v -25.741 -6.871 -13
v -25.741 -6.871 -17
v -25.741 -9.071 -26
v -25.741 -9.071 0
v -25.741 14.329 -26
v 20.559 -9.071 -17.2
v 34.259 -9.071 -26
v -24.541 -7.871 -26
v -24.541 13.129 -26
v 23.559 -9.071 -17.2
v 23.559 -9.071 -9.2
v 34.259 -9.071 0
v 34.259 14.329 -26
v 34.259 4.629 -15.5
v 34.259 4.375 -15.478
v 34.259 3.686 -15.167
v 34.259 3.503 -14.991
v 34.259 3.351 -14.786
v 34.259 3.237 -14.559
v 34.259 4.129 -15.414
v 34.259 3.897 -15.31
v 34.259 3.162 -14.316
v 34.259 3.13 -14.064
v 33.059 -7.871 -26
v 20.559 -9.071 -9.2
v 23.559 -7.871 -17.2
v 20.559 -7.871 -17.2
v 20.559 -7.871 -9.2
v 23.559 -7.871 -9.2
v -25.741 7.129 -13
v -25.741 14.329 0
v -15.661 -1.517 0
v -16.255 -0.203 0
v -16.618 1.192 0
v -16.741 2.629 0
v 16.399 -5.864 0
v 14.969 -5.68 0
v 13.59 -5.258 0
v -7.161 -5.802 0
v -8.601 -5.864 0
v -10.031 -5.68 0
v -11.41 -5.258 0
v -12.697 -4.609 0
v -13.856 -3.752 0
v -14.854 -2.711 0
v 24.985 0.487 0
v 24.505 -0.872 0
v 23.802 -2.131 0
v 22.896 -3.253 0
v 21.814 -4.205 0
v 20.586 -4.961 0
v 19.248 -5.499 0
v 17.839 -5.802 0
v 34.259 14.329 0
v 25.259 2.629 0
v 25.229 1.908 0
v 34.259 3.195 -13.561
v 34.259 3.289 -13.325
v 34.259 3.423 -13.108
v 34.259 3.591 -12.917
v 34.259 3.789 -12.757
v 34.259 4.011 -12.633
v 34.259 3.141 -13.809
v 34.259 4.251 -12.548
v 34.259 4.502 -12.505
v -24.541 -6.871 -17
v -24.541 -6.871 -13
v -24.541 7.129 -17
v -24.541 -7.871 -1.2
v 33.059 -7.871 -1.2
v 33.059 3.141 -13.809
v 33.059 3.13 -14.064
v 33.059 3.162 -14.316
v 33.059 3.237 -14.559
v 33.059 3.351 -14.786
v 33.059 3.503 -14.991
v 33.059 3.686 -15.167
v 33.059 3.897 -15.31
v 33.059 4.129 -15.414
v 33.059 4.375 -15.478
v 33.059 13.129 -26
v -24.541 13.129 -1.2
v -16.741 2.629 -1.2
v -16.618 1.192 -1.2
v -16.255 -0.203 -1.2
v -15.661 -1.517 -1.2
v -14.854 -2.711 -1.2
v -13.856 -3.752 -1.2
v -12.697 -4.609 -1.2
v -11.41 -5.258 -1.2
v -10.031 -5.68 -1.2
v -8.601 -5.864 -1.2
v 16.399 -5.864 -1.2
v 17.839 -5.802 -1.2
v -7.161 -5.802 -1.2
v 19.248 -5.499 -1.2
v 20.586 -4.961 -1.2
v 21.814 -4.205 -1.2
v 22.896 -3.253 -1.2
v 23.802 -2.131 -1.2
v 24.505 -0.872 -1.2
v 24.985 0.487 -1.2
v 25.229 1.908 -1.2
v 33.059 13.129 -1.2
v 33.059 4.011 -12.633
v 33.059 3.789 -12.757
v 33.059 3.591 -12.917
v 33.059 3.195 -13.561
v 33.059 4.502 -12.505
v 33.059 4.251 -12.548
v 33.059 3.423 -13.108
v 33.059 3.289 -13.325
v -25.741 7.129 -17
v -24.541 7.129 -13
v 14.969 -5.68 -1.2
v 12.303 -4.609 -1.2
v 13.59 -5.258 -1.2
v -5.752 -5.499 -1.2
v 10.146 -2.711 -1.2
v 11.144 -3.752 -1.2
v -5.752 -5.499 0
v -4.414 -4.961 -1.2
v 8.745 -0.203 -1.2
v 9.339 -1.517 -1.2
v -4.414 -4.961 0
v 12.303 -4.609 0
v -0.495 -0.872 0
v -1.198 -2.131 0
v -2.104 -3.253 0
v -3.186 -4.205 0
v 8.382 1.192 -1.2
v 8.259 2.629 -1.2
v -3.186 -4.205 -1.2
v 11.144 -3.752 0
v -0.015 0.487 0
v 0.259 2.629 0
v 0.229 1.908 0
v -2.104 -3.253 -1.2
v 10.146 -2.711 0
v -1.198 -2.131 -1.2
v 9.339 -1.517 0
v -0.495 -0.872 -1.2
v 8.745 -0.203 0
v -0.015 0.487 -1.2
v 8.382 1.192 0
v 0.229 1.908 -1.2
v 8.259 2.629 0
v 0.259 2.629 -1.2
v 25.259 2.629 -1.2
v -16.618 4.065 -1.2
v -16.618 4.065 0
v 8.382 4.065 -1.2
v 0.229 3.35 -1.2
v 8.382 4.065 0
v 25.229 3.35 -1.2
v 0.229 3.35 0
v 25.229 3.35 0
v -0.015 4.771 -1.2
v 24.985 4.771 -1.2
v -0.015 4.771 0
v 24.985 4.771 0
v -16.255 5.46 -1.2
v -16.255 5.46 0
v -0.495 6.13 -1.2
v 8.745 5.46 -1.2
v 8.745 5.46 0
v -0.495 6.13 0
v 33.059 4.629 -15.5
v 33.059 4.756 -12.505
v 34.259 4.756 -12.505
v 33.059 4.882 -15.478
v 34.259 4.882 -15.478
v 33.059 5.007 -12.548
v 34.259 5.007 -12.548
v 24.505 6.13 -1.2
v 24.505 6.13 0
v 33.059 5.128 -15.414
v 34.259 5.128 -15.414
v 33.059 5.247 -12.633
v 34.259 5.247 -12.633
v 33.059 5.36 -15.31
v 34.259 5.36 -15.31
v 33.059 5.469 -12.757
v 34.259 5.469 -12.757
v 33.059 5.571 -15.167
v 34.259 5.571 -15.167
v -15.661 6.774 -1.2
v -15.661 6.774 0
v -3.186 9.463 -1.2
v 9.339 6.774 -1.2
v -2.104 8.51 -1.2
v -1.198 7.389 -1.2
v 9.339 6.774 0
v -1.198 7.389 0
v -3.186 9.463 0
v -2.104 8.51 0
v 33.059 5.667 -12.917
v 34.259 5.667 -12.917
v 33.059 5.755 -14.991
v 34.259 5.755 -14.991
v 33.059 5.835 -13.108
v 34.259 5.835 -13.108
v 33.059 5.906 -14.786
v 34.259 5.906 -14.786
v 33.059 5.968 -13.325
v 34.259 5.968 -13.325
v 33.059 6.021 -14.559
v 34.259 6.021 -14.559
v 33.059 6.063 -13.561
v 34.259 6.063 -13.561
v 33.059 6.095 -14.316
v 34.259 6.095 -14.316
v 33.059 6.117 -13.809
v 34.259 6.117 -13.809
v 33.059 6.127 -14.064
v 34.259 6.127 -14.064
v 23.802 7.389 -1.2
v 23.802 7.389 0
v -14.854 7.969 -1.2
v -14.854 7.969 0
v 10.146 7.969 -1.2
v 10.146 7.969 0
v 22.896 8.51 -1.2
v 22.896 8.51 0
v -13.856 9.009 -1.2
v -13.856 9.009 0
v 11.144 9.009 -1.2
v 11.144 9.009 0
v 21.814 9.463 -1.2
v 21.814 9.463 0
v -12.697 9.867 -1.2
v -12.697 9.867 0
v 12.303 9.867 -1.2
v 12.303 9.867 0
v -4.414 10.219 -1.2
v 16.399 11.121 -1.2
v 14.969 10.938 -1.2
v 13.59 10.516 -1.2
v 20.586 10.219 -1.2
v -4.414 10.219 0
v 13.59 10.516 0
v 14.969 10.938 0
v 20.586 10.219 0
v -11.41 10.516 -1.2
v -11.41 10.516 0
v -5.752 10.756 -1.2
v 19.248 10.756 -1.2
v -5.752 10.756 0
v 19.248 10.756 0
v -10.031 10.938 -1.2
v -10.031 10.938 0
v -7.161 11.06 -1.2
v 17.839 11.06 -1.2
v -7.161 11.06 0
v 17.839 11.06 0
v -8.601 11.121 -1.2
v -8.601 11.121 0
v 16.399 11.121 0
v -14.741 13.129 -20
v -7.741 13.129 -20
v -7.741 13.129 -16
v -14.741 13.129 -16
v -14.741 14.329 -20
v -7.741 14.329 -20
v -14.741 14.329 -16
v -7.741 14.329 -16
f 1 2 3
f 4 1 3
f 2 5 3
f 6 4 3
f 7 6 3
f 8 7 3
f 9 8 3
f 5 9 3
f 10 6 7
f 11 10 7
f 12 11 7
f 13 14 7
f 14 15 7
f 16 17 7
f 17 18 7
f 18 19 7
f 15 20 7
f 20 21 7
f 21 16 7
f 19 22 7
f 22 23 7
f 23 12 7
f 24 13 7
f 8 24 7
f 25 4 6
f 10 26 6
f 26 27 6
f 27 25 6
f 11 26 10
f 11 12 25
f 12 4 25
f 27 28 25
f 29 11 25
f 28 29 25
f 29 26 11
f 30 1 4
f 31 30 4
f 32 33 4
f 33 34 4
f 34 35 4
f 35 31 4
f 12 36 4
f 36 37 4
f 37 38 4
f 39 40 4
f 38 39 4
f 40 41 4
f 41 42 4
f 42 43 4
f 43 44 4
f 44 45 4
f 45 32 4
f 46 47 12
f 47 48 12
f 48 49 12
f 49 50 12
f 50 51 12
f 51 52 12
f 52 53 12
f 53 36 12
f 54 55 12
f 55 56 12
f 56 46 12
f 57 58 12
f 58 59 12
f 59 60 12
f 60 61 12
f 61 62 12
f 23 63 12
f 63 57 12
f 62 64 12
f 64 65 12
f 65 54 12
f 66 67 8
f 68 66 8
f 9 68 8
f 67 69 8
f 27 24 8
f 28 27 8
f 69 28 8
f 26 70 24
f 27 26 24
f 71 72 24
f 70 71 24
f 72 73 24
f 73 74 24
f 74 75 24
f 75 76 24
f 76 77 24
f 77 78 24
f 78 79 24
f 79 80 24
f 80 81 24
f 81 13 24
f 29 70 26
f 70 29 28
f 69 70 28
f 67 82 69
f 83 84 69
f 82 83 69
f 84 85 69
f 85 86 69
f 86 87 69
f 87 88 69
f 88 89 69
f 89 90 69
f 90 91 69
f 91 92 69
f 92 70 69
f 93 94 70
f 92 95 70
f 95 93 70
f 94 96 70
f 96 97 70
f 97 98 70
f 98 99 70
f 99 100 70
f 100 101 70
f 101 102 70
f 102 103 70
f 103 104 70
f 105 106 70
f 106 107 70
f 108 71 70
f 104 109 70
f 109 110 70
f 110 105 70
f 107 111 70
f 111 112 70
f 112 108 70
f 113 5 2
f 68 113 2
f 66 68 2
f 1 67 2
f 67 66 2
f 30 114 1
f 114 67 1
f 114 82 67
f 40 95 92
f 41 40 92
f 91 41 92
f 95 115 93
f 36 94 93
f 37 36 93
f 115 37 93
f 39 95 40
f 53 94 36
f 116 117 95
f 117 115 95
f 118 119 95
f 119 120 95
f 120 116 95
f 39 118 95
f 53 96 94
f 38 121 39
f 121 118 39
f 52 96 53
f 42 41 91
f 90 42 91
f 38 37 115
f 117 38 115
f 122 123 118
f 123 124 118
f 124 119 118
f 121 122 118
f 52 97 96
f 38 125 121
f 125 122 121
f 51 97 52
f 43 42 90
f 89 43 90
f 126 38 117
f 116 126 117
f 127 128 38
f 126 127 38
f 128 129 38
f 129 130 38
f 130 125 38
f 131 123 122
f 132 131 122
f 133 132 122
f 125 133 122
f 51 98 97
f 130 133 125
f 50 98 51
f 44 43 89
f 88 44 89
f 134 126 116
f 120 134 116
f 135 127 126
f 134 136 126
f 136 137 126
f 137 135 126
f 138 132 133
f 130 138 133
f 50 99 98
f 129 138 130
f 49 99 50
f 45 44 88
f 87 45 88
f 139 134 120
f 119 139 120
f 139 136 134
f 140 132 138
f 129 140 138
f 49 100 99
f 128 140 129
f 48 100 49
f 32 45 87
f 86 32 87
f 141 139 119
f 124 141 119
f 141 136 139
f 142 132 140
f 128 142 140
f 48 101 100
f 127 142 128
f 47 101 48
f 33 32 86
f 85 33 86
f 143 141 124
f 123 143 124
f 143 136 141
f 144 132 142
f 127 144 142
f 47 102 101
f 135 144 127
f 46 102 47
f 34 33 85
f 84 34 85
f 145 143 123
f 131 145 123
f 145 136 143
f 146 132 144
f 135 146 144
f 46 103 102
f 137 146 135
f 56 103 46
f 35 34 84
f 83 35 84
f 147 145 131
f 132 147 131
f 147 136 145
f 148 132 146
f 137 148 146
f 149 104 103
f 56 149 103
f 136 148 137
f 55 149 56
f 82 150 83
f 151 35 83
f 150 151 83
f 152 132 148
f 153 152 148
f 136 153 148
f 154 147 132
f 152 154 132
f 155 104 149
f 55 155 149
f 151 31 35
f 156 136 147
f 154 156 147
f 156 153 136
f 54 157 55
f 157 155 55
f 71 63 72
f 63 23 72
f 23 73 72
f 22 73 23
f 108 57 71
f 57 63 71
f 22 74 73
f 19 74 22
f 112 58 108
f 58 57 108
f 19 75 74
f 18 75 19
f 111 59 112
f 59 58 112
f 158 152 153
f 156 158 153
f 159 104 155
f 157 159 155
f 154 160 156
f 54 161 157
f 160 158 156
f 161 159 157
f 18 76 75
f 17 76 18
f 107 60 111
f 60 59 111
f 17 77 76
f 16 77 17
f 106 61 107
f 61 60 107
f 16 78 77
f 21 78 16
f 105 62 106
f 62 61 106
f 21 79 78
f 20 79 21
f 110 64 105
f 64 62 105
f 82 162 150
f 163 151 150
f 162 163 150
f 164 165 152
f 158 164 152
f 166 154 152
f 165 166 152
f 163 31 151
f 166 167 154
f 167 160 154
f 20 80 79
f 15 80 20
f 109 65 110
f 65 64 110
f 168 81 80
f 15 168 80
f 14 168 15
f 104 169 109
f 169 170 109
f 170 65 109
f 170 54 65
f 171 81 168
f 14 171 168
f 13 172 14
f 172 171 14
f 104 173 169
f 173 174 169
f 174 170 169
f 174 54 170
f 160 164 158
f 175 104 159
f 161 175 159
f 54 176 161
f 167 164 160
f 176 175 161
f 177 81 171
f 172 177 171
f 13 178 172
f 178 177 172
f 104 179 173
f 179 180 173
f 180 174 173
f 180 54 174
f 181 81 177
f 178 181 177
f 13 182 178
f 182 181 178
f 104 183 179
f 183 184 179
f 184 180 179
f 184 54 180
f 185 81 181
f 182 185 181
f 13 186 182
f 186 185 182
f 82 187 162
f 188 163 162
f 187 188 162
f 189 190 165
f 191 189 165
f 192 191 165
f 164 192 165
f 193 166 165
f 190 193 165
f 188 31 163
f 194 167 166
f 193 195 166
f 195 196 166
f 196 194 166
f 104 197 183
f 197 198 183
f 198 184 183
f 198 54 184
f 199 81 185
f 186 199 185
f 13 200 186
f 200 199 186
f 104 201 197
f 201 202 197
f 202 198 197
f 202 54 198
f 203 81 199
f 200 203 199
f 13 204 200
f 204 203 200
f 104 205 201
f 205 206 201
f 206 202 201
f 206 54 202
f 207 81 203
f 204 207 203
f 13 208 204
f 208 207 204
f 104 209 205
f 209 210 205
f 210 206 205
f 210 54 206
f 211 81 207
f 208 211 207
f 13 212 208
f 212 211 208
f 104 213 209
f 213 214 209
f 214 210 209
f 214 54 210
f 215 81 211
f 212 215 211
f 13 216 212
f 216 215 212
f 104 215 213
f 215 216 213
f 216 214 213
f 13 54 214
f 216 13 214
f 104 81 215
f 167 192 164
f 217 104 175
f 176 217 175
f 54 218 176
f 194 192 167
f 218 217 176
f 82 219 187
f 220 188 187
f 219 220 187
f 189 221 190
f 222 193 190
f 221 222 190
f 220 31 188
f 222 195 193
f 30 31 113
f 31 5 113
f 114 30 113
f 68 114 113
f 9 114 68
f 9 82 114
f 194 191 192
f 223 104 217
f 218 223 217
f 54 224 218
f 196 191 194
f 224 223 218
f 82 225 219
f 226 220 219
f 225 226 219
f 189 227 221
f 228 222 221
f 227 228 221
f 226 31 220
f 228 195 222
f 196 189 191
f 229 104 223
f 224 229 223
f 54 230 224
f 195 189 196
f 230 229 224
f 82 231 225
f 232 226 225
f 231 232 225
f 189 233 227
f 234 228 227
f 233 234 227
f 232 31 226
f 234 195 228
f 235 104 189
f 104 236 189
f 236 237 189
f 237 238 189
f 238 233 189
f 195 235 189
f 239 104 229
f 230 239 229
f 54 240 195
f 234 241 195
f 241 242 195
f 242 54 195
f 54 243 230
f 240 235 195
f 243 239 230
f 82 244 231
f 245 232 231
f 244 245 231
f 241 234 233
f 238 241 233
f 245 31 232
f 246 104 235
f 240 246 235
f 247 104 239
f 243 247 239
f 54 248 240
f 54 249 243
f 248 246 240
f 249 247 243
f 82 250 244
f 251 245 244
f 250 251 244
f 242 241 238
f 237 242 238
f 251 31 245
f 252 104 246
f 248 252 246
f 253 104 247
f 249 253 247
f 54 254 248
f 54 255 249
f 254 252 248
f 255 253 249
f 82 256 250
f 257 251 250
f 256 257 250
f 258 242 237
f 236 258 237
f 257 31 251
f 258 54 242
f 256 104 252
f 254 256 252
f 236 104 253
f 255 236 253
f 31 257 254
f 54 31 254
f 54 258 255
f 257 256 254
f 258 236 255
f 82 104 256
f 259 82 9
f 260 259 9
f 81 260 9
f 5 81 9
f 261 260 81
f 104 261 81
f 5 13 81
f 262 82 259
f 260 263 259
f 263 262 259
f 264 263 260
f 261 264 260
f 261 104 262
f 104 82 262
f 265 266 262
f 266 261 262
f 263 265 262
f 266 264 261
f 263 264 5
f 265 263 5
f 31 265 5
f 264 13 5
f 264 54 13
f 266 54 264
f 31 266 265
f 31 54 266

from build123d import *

# Parameters (mm, degrees)
F_3DSKETCH1_R       = 8.5
BOSS_EXTRUDE3_DEPTH = 1.2
SKETCH3_W           = 60
SKETCH3_H           = 23.4
SKETCH3_W_2         = 57.6
SKETCH3_H_2         = 21
BOSS_EXTRUDE4_DEPTH = 26
SKETCH6_W           = 3
SKETCH6_H           = 8
CUT_EXTRUDE1_DEPTH  = 4
SKETCH7_W           = 7
SKETCH7_H           = 4
CUT_EXTRUDE2_DEPTH  = 4
CUT_EXTRUDE4_DEPTH  = 4
SKETCH10_W          = 4
SKETCH10_H          = 4.5
SKETCH10_H_2        = 9.5
CUT_EXTRUDE5_DEPTH  = 4


with BuildPart() as part:
    # 3DSketch1 → Boss-Extrude3 (new body)
    with BuildSketch(Plane(origin=(-25.740687228, -9.071236551, 0), x_dir=(0.9316545551067793, 0.3633452764916439, 0), z_dir=(0, 0, -1))):
        Polygon((0, 0), (55.899273306, 21.800716589), (64.401552776, 0), (8.50227947, -21.800716589), align=None)
        with Locations(Location((20.555094449, -4.541815956, 0), (0, 0, 21.305783618))):
            Circle(F_3DSKETCH1_R, mode=Mode.SUBTRACT)
        with Locations(Location((43.846458327, 4.541815956, 0), (0, 0, 21.305783618))):
            Circle(F_3DSKETCH1_R, mode=Mode.SUBTRACT)
    extrude(amount=BOSS_EXTRUDE3_DEPTH)

    # Sketch3 → Boss-Extrude4 (add)
    with BuildSketch(Plane.XY):
        with Locations((4.259312772, 2.628763449)):
            Rectangle(SKETCH3_W, SKETCH3_H)
        with Locations((4.259312772, 2.628763449)):
            Rectangle(SKETCH3_W_2, SKETCH3_H_2, mode=Mode.SUBTRACT)
    extrude(amount=-BOSS_EXTRUDE4_DEPTH)

    # Sketch6 → Cut-Extrude1 (cut)
    with BuildSketch(Plane.XZ.offset(9.071236551)):
        with Locations((22.059312772, -13.2)):
            Rectangle(SKETCH6_W, SKETCH6_H)
    extrude(amount=-CUT_EXTRUDE1_DEPTH, mode=Mode.SUBTRACT)

    # Sketch7 → Cut-Extrude2 (cut)
    with BuildSketch(Plane(origin=(0, 14.328763449, 0), x_dir=(1, 0, 0), z_dir=(0, 1, 0))):
        with Locations((-11.240687228, 18)):
            Rectangle(SKETCH7_W, SKETCH7_H)
    extrude(amount=-CUT_EXTRUDE2_DEPTH, mode=Mode.SUBTRACT)

    # Sketch9 → Cut-Extrude4 (cut)
    with BuildSketch(Plane(origin=(34.259312772, 0, 0), x_dir=(0, 0, -1), z_dir=(1, 0, 0))):
        with BuildLine():
            Line((12.5, 4.628763449), (14, 4.628763449))
            Line((14, 4.628763449), (15.5, 4.628763449))
            ThreePointArc((15.5, 4.628763449), (14, 6.128763449), (12.5, 4.628763449))
        make_face()
        with BuildLine():
            Line((15.5, 4.628763449), (14, 4.628763449))
            Line((14, 4.628763449), (12.5, 4.628763449))
            ThreePointArc((12.5, 4.628763449), (14, 3.128763449), (15.5, 4.628763449))
        make_face()
    extrude(amount=-CUT_EXTRUDE4_DEPTH, mode=Mode.SUBTRACT)

    # Sketch10 → Cut-Extrude5 (cut)
    with BuildSketch(Plane.ZY.offset(25.740687228)):
        with Locations((-15, 4.878763449)):
            Rectangle(SKETCH10_W, SKETCH10_H)
        with Locations((-15, -2.121236551)):
            Rectangle(SKETCH10_W, SKETCH10_H_2)
    extrude(amount=-CUT_EXTRUDE5_DEPTH, mode=Mode.SUBTRACT)


solid = part.part
